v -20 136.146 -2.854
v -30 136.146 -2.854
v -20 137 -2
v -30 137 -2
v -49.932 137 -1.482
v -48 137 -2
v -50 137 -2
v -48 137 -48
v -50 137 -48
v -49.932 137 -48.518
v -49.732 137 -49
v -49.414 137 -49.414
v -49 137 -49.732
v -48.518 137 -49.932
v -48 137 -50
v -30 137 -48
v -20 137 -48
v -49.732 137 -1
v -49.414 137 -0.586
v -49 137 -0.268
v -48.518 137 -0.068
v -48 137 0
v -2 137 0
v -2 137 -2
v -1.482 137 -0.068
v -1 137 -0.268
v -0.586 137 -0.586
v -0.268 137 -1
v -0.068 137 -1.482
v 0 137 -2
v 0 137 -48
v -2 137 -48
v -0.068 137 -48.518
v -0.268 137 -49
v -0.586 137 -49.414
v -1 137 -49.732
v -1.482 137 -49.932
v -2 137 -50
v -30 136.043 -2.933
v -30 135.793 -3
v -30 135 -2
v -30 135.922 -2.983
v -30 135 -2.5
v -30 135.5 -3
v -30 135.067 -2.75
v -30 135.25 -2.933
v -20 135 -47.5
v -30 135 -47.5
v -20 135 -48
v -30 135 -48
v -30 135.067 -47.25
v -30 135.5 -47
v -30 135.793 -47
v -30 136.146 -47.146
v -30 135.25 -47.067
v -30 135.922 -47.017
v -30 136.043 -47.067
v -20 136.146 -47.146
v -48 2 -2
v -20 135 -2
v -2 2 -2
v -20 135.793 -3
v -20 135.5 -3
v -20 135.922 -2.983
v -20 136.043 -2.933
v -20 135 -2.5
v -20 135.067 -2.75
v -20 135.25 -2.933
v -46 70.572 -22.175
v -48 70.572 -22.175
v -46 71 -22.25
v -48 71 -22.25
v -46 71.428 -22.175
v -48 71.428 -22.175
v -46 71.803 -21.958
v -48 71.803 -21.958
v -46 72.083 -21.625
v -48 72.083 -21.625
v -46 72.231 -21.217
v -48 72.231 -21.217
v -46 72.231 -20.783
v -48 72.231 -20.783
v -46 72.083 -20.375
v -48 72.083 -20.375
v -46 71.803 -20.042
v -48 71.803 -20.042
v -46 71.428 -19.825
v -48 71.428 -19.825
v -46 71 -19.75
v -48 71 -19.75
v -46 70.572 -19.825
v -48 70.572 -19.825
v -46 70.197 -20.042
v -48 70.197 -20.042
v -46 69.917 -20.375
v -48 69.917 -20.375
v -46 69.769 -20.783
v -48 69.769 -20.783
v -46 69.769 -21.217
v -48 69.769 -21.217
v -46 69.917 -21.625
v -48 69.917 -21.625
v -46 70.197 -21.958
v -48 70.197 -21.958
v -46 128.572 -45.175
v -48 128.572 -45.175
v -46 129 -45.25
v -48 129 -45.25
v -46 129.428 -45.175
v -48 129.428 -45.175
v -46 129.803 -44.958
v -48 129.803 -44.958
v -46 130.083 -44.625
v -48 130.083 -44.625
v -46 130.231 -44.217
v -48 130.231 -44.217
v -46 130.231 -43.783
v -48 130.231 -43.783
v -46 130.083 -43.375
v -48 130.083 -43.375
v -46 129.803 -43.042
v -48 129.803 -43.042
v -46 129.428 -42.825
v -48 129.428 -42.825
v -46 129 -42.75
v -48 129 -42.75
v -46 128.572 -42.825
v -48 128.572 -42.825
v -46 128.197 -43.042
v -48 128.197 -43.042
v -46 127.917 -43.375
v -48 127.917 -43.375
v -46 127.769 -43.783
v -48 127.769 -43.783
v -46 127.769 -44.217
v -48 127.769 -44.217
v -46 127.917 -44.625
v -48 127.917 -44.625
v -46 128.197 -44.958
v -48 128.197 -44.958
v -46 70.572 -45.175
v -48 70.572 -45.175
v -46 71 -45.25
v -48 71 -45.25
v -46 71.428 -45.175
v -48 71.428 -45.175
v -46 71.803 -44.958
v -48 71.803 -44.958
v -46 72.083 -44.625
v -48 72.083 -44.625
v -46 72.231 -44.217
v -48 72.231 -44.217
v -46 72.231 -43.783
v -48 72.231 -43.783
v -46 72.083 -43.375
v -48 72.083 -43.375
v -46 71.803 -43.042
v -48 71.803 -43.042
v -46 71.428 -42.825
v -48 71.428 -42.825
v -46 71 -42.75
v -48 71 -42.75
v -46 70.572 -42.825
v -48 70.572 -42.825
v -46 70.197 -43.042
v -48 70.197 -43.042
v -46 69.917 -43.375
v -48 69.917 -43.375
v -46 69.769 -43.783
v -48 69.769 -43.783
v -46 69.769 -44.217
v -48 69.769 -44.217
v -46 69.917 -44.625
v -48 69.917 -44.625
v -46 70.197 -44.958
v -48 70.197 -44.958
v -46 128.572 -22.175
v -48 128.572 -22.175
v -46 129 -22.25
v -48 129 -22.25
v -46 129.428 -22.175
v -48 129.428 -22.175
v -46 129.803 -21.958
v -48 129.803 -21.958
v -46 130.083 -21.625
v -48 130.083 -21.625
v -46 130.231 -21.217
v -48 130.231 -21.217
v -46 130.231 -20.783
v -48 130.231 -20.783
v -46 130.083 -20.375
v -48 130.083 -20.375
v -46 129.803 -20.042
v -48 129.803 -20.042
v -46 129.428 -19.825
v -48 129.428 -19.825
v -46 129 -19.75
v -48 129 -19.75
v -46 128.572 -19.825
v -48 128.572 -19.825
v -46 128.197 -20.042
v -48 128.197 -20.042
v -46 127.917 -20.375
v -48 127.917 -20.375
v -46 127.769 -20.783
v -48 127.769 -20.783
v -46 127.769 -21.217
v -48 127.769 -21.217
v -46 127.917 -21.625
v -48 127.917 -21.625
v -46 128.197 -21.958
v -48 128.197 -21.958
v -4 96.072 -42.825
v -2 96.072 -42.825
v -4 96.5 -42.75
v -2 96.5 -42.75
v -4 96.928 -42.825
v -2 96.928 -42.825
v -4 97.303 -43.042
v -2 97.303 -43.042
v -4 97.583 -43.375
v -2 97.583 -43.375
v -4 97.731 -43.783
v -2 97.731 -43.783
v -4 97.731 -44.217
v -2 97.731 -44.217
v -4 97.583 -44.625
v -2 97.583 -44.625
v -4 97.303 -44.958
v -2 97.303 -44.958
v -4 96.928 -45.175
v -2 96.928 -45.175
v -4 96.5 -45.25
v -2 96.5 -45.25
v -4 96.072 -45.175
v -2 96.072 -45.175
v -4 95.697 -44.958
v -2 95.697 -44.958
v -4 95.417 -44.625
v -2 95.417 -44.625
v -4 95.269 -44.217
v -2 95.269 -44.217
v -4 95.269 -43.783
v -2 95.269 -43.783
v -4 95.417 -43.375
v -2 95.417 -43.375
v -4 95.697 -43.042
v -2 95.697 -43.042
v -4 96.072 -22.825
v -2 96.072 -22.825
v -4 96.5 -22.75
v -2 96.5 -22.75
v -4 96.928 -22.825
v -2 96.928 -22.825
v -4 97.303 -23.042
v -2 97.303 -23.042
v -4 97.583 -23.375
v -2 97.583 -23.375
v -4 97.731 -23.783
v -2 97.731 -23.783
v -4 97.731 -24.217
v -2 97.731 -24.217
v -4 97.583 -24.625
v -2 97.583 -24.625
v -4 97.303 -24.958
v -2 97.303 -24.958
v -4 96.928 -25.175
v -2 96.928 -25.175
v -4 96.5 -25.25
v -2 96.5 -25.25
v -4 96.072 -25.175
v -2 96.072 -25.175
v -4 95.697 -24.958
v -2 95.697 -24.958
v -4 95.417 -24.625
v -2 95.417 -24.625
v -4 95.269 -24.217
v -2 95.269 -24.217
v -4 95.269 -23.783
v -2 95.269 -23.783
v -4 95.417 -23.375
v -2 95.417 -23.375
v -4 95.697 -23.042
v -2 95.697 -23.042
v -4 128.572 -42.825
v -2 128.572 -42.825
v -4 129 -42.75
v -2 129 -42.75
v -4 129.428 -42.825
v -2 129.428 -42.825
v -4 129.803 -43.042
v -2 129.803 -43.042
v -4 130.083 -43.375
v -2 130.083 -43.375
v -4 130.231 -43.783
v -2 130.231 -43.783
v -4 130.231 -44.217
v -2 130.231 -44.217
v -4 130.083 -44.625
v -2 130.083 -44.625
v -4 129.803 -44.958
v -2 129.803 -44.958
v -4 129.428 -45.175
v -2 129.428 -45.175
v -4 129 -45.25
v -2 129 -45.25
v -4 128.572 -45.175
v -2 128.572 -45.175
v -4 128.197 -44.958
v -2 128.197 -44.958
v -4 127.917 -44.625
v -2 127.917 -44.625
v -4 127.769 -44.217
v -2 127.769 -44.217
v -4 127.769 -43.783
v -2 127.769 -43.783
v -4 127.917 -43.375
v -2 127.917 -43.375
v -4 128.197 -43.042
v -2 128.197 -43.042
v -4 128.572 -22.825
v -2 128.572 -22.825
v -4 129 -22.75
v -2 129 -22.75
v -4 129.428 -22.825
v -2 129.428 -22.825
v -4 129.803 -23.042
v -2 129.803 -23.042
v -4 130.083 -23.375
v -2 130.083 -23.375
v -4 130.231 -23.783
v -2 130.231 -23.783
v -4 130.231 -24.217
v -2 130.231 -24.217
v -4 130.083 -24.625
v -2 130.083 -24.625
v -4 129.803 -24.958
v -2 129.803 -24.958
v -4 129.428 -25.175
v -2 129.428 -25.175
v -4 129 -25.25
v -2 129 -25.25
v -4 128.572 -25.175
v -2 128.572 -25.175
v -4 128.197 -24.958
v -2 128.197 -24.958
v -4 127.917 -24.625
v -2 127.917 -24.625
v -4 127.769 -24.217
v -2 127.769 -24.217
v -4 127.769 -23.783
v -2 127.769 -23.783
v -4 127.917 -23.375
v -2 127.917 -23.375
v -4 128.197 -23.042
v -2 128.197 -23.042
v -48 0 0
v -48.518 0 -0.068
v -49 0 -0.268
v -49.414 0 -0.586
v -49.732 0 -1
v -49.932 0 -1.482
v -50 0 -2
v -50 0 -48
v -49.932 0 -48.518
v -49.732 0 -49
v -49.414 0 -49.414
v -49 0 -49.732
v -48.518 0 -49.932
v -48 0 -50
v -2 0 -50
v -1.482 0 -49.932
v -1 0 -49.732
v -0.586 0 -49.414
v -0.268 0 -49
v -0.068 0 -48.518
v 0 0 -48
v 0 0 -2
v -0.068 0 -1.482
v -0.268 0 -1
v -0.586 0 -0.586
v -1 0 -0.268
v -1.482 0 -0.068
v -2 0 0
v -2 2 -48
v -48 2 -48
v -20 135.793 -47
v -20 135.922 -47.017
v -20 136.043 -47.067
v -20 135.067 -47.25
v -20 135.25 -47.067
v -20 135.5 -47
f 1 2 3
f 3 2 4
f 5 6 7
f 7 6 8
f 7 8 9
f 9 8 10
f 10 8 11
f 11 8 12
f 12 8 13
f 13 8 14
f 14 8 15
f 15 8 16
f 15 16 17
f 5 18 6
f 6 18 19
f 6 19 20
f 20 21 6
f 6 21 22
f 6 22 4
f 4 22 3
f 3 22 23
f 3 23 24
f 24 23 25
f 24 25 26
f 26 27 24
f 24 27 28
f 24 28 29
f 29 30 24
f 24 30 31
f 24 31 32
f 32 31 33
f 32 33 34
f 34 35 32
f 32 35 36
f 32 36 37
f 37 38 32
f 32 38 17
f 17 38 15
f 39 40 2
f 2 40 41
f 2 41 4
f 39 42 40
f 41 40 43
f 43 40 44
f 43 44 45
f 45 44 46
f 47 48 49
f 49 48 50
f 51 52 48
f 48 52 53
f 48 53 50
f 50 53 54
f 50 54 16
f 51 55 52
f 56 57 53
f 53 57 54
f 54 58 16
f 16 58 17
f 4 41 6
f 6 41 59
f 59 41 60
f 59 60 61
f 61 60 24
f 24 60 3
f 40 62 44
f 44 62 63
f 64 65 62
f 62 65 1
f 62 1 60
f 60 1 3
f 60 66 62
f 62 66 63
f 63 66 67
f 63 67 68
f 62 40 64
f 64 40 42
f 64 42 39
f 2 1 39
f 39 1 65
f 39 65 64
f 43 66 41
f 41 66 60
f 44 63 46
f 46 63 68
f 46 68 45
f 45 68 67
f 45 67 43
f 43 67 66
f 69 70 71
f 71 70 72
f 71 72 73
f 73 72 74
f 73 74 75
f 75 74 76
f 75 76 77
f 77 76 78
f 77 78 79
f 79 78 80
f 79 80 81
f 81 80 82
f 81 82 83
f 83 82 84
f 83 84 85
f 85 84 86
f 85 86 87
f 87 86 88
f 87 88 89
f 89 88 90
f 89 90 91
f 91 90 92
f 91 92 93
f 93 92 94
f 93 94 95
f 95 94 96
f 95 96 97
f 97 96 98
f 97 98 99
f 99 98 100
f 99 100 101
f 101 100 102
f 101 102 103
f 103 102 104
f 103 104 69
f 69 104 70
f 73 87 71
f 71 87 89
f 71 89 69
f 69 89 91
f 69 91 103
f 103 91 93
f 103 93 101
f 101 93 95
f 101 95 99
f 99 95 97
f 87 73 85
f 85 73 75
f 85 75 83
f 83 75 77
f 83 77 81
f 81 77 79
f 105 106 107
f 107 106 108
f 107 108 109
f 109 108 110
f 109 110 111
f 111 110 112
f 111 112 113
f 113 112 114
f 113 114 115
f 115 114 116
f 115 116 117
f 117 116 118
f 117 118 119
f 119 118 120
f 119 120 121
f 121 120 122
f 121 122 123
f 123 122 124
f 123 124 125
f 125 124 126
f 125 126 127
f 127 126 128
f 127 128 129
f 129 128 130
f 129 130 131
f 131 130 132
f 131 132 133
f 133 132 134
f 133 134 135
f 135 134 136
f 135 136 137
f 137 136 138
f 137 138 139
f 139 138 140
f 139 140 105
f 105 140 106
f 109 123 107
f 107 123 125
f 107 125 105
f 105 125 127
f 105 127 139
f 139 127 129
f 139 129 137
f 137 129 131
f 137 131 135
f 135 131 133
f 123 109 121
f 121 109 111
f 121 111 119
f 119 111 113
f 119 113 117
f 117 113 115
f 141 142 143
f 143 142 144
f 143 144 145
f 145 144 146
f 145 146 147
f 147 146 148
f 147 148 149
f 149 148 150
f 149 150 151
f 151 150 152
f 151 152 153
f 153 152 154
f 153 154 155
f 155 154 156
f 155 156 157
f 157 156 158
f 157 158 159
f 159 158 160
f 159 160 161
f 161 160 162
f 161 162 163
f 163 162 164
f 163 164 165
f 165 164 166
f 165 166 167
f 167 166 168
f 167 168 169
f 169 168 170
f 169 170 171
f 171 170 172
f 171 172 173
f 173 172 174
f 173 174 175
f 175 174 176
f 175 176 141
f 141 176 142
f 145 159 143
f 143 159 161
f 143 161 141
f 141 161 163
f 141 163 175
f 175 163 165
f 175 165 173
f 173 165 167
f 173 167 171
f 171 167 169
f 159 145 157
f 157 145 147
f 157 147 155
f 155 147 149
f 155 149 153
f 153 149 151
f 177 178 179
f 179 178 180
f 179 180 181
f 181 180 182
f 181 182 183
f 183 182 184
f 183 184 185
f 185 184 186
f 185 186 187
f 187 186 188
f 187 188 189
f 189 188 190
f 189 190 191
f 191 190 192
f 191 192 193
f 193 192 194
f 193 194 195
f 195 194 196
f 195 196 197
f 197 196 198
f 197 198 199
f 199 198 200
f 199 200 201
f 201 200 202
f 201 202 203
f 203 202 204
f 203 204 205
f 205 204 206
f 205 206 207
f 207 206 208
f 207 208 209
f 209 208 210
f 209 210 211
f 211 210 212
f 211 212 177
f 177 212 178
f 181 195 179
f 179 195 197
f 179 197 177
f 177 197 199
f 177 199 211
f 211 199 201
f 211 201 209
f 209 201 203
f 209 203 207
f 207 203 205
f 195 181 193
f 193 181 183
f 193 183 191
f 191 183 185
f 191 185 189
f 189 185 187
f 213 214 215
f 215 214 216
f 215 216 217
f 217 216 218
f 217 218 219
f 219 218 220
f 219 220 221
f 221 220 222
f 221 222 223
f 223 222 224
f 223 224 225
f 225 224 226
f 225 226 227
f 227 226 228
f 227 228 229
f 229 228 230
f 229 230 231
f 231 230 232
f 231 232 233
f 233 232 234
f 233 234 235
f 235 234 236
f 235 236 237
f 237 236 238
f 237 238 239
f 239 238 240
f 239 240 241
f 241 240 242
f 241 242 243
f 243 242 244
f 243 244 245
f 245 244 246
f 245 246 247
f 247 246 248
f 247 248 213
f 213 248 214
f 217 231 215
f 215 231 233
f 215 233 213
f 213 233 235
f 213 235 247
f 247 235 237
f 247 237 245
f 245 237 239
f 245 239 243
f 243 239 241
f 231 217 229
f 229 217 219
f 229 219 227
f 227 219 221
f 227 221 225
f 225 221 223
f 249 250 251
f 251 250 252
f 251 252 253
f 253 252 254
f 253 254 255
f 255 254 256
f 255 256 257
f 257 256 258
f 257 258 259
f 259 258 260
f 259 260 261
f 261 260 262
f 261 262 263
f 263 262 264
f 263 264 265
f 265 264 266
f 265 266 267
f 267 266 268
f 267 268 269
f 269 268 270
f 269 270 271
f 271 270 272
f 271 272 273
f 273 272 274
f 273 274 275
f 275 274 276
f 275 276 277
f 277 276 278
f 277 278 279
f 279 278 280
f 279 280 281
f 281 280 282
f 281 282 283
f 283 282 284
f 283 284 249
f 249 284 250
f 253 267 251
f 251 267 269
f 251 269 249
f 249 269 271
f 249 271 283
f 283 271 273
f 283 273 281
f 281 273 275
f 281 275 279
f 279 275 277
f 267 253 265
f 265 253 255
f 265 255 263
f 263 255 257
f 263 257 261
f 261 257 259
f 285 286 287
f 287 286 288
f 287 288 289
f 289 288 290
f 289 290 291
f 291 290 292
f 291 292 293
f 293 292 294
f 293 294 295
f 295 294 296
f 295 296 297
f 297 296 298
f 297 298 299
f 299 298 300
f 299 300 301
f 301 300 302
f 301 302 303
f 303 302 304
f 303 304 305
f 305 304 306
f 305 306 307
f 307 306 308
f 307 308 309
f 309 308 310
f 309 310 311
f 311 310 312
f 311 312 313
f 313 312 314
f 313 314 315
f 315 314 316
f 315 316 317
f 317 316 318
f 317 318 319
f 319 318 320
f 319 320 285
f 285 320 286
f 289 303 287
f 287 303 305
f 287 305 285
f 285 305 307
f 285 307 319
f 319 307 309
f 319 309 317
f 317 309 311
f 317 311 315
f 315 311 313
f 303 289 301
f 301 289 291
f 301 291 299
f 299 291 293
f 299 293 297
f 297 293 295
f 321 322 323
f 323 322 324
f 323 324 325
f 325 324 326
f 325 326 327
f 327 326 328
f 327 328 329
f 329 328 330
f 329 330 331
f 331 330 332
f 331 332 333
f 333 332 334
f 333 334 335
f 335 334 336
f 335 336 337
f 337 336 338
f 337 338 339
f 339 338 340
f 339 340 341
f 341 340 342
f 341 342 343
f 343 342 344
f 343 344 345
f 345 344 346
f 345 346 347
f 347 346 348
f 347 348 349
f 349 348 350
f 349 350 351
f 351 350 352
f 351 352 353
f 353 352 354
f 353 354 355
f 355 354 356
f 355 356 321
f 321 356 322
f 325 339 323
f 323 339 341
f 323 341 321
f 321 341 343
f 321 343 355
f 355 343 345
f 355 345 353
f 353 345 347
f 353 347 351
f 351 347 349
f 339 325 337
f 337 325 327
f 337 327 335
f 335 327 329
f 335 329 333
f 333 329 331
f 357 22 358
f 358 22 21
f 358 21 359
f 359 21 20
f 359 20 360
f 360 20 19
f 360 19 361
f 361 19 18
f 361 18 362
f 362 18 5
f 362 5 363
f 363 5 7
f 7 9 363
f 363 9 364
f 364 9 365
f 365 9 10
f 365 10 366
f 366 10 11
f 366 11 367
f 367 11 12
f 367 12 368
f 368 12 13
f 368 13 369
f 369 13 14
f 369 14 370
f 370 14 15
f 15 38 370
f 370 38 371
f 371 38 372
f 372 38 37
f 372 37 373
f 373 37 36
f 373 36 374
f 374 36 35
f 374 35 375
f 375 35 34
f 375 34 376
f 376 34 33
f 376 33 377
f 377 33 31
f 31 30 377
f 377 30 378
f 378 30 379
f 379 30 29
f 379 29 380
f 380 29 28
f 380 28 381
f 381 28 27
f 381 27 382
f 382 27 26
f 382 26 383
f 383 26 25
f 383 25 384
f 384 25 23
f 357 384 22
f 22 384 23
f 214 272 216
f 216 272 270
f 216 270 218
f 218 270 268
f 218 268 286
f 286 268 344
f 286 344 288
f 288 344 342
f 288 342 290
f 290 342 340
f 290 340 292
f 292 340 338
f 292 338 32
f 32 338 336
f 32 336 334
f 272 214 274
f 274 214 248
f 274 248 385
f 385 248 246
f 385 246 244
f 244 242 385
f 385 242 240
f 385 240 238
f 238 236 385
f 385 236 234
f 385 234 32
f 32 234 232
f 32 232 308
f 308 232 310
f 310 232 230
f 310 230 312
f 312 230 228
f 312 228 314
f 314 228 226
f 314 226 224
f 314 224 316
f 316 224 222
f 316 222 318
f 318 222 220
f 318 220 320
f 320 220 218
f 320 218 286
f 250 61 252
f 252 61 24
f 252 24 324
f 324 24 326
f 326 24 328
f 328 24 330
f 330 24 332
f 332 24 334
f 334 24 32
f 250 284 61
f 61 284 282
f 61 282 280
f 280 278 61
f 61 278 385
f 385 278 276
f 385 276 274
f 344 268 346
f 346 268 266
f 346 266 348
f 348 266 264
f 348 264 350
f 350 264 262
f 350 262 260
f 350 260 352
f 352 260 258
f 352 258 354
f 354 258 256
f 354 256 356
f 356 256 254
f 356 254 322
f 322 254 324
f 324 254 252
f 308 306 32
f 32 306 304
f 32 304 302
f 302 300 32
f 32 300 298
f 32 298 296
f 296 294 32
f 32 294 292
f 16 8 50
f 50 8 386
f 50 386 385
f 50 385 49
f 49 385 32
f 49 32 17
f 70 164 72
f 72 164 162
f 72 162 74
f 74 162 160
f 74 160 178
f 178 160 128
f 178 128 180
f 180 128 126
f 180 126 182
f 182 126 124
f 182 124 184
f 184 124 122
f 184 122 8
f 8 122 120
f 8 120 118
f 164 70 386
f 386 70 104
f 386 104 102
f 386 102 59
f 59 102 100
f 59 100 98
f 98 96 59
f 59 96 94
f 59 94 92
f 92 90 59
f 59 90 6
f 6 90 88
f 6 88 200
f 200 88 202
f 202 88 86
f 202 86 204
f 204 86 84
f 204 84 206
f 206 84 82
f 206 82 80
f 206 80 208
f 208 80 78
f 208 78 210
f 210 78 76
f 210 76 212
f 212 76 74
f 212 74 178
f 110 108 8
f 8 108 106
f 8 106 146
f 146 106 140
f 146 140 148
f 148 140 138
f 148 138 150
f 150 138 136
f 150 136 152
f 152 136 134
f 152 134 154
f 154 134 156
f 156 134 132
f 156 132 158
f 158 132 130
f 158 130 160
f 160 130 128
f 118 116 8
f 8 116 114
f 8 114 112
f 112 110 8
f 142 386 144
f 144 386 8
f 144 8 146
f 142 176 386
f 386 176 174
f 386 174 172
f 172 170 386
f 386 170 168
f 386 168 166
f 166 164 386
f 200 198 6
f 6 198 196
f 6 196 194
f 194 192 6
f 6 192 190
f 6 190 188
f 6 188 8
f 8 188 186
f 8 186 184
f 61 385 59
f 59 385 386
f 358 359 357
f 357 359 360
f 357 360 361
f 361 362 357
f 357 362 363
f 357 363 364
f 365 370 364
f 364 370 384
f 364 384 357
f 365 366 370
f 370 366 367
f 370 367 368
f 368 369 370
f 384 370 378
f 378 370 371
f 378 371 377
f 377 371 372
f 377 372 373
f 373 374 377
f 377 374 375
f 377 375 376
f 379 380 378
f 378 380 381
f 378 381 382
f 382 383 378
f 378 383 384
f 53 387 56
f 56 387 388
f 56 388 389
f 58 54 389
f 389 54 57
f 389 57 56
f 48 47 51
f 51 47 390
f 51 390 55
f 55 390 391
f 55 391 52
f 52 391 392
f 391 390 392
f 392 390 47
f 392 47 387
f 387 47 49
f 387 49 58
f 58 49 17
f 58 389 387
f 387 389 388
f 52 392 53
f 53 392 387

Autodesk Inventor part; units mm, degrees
ref_plane "YZ Plane" through (0, 0, 0) normal (1, 0, 0) x (0, 1, 0)
ref_plane "XZ Plane" through (0, 0, 0) normal (0, 1, 0) x (-1, 0, 0)
ref_plane "XY Plane" through (0, 0, 0) normal (0, 0, 1) x (1, 0, 0)
sketch "Sketch1" plane through (0, 0, 0) normal (0, 1, 0) x (-1, 0, 0)
  line L0 (0, 0) -> (50, 0)
  line L1 (50, 0) -> (50, -50)
  line L2 (50, -50) -> (0, -50)
  line L3 (0, -50) -> (0, 0)
  dimension "d0" = 50
  dimension "d1" = 50
extrude "Extrusion1" add sketch "Sketch1" along normal blind 2
sketch "Sketch2" plane through (0, 2, 0) normal (0, 1, 0) x (1, 0, 0)
  line L0 (-48, 2) -> (-2, 2)
  line L1 (-2, 2) -> (-2, 48)
  line L2 (-2, 48) -> (-48, 48)
  line L3 (-48, 48) -> (-48, 2)
  line L4 (0, 50) -> (-50, 50) projected
  line L5 (-50, 50) -> (-50, 0) projected
  line L6 (-50, 0) -> (0, 0) projected
  line L7 (0, 0) -> (0, 50) projected
  dimension "d4" = 2
  dimension "d5" = 2
  dimension "d6" = 2
  dimension "d7" = 2
extrude "Extrusion2" add sketch "Sketch2" along normal blind 135
fillet "Fillet1" radius 2 4 edges at (0, 68.5, 0) (0, 68.5, -50) (-50, 68.5, -50) (-50, 68.5, 0)
sketch "Sketch3" plane through (-2, 2, -48) normal (-1, 0, 0) x (0, 0, 1)
  circle A0 centre (4, 127) radius 1.25
  line L0 (0, 135) -> (46, 135) projected
  line L1 (0, -2) -> (0, 135) projected
  circle A1 centre (4, 94.5) radius 1.25
  circle A2 centre (24, 127) radius 1.25
  circle A3 centre (24, 94.5) radius 1.25
  point P0 (48, -2)
  dimension "d11" = 2.5
  dimension "d14" = 8
  dimension "d15" = 4
  dimension "d16" = 2.5
  dimension "d17" = 32.5
  dimension "d18" = 2.5
  dimension "d19" = 20
  dimension "d20" = 2.5
  dimension "d23" = 32.5
  dimension "d24" = 8
  dimension "d25" = 20
extrude "Extrusion3" add sketch "Sketch3" along normal blind 2
sketch "Sketch4" plane through (-48, 2, -2) normal (1, 0, 0) x (0, 0, -1)
  circle A0 centre (42, 127) radius 1.25
  line L0 (0, 135) -> (46, 135) projected
  line L1 (46, 135) -> (46, -2) projected
  circle A1 centre (42, 69) radius 1.25
  circle A2 centre (19, 127) radius 1.25
  circle A3 centre (19, 69) radius 1.25
  point P0 (-2, -2)
  dimension "d26" = 2.5
  dimension "d27" = 8
  dimension "d28" = 4
  dimension "d29" = 2.5
  dimension "d30" = 4
  dimension "d31" = 58
  dimension "d32" = 2.5
  dimension "d33" = 8
  dimension "d34" = 23
  dimension "d35" = 2.5
  dimension "d36" = 58
  dimension "d37" = 23
extrude "Extrusion4" add sketch "Sketch4" along normal blind 2
sketch "Sketch5" plane through (-48, 2, -48) normal (0, 0, 1) x (1, 0, 0)
  line L0 (46, 135) -> (0, 135) construction
  line L1 (46, 0) -> (46, 135) projected
  line L2 (0, 135) -> (46, 135)
  line L3 (23, 135) -> (23, 133) construction
  line L4 (23, 133) -> (28, 133)
  line L5 (23, 133) -> (18, 133)
  line L6 (18, 133) -> (24.2185, 133)
  line L7 (18, 133) -> (18, 135)
  line L8 (28, 133) -> (28, 135)
  point P0 (48, -2)
  dimension "d40" = 2
  dimension "d41" = 5
  dimension "d51" = 5
extrude "Extrusion5" add sketch "Sketch5" along normal blind 1
chamfer "Chamfer1" distance 1 angle 45 1 edges at (-25, 137, -47)
ref_plane "Work Plane1" through (-2, 137, -25) normal (0, 0, 1) x (1, 0, 0)
mirror "Mirror1" about plane through (-2, 137, -25) normal (0, 0, 1) of "Extrusion5"
chamfer "Chamfer2" distance 1 angle 45 1 edges at (-25, 137, -3)
fillet "Fillet2" radius 0.5 4 edges at (-25, 136, -47) (-25, 135, -47) (-25, 135, -3) (-25, 136, -3)
properties part number "180caseMain"
